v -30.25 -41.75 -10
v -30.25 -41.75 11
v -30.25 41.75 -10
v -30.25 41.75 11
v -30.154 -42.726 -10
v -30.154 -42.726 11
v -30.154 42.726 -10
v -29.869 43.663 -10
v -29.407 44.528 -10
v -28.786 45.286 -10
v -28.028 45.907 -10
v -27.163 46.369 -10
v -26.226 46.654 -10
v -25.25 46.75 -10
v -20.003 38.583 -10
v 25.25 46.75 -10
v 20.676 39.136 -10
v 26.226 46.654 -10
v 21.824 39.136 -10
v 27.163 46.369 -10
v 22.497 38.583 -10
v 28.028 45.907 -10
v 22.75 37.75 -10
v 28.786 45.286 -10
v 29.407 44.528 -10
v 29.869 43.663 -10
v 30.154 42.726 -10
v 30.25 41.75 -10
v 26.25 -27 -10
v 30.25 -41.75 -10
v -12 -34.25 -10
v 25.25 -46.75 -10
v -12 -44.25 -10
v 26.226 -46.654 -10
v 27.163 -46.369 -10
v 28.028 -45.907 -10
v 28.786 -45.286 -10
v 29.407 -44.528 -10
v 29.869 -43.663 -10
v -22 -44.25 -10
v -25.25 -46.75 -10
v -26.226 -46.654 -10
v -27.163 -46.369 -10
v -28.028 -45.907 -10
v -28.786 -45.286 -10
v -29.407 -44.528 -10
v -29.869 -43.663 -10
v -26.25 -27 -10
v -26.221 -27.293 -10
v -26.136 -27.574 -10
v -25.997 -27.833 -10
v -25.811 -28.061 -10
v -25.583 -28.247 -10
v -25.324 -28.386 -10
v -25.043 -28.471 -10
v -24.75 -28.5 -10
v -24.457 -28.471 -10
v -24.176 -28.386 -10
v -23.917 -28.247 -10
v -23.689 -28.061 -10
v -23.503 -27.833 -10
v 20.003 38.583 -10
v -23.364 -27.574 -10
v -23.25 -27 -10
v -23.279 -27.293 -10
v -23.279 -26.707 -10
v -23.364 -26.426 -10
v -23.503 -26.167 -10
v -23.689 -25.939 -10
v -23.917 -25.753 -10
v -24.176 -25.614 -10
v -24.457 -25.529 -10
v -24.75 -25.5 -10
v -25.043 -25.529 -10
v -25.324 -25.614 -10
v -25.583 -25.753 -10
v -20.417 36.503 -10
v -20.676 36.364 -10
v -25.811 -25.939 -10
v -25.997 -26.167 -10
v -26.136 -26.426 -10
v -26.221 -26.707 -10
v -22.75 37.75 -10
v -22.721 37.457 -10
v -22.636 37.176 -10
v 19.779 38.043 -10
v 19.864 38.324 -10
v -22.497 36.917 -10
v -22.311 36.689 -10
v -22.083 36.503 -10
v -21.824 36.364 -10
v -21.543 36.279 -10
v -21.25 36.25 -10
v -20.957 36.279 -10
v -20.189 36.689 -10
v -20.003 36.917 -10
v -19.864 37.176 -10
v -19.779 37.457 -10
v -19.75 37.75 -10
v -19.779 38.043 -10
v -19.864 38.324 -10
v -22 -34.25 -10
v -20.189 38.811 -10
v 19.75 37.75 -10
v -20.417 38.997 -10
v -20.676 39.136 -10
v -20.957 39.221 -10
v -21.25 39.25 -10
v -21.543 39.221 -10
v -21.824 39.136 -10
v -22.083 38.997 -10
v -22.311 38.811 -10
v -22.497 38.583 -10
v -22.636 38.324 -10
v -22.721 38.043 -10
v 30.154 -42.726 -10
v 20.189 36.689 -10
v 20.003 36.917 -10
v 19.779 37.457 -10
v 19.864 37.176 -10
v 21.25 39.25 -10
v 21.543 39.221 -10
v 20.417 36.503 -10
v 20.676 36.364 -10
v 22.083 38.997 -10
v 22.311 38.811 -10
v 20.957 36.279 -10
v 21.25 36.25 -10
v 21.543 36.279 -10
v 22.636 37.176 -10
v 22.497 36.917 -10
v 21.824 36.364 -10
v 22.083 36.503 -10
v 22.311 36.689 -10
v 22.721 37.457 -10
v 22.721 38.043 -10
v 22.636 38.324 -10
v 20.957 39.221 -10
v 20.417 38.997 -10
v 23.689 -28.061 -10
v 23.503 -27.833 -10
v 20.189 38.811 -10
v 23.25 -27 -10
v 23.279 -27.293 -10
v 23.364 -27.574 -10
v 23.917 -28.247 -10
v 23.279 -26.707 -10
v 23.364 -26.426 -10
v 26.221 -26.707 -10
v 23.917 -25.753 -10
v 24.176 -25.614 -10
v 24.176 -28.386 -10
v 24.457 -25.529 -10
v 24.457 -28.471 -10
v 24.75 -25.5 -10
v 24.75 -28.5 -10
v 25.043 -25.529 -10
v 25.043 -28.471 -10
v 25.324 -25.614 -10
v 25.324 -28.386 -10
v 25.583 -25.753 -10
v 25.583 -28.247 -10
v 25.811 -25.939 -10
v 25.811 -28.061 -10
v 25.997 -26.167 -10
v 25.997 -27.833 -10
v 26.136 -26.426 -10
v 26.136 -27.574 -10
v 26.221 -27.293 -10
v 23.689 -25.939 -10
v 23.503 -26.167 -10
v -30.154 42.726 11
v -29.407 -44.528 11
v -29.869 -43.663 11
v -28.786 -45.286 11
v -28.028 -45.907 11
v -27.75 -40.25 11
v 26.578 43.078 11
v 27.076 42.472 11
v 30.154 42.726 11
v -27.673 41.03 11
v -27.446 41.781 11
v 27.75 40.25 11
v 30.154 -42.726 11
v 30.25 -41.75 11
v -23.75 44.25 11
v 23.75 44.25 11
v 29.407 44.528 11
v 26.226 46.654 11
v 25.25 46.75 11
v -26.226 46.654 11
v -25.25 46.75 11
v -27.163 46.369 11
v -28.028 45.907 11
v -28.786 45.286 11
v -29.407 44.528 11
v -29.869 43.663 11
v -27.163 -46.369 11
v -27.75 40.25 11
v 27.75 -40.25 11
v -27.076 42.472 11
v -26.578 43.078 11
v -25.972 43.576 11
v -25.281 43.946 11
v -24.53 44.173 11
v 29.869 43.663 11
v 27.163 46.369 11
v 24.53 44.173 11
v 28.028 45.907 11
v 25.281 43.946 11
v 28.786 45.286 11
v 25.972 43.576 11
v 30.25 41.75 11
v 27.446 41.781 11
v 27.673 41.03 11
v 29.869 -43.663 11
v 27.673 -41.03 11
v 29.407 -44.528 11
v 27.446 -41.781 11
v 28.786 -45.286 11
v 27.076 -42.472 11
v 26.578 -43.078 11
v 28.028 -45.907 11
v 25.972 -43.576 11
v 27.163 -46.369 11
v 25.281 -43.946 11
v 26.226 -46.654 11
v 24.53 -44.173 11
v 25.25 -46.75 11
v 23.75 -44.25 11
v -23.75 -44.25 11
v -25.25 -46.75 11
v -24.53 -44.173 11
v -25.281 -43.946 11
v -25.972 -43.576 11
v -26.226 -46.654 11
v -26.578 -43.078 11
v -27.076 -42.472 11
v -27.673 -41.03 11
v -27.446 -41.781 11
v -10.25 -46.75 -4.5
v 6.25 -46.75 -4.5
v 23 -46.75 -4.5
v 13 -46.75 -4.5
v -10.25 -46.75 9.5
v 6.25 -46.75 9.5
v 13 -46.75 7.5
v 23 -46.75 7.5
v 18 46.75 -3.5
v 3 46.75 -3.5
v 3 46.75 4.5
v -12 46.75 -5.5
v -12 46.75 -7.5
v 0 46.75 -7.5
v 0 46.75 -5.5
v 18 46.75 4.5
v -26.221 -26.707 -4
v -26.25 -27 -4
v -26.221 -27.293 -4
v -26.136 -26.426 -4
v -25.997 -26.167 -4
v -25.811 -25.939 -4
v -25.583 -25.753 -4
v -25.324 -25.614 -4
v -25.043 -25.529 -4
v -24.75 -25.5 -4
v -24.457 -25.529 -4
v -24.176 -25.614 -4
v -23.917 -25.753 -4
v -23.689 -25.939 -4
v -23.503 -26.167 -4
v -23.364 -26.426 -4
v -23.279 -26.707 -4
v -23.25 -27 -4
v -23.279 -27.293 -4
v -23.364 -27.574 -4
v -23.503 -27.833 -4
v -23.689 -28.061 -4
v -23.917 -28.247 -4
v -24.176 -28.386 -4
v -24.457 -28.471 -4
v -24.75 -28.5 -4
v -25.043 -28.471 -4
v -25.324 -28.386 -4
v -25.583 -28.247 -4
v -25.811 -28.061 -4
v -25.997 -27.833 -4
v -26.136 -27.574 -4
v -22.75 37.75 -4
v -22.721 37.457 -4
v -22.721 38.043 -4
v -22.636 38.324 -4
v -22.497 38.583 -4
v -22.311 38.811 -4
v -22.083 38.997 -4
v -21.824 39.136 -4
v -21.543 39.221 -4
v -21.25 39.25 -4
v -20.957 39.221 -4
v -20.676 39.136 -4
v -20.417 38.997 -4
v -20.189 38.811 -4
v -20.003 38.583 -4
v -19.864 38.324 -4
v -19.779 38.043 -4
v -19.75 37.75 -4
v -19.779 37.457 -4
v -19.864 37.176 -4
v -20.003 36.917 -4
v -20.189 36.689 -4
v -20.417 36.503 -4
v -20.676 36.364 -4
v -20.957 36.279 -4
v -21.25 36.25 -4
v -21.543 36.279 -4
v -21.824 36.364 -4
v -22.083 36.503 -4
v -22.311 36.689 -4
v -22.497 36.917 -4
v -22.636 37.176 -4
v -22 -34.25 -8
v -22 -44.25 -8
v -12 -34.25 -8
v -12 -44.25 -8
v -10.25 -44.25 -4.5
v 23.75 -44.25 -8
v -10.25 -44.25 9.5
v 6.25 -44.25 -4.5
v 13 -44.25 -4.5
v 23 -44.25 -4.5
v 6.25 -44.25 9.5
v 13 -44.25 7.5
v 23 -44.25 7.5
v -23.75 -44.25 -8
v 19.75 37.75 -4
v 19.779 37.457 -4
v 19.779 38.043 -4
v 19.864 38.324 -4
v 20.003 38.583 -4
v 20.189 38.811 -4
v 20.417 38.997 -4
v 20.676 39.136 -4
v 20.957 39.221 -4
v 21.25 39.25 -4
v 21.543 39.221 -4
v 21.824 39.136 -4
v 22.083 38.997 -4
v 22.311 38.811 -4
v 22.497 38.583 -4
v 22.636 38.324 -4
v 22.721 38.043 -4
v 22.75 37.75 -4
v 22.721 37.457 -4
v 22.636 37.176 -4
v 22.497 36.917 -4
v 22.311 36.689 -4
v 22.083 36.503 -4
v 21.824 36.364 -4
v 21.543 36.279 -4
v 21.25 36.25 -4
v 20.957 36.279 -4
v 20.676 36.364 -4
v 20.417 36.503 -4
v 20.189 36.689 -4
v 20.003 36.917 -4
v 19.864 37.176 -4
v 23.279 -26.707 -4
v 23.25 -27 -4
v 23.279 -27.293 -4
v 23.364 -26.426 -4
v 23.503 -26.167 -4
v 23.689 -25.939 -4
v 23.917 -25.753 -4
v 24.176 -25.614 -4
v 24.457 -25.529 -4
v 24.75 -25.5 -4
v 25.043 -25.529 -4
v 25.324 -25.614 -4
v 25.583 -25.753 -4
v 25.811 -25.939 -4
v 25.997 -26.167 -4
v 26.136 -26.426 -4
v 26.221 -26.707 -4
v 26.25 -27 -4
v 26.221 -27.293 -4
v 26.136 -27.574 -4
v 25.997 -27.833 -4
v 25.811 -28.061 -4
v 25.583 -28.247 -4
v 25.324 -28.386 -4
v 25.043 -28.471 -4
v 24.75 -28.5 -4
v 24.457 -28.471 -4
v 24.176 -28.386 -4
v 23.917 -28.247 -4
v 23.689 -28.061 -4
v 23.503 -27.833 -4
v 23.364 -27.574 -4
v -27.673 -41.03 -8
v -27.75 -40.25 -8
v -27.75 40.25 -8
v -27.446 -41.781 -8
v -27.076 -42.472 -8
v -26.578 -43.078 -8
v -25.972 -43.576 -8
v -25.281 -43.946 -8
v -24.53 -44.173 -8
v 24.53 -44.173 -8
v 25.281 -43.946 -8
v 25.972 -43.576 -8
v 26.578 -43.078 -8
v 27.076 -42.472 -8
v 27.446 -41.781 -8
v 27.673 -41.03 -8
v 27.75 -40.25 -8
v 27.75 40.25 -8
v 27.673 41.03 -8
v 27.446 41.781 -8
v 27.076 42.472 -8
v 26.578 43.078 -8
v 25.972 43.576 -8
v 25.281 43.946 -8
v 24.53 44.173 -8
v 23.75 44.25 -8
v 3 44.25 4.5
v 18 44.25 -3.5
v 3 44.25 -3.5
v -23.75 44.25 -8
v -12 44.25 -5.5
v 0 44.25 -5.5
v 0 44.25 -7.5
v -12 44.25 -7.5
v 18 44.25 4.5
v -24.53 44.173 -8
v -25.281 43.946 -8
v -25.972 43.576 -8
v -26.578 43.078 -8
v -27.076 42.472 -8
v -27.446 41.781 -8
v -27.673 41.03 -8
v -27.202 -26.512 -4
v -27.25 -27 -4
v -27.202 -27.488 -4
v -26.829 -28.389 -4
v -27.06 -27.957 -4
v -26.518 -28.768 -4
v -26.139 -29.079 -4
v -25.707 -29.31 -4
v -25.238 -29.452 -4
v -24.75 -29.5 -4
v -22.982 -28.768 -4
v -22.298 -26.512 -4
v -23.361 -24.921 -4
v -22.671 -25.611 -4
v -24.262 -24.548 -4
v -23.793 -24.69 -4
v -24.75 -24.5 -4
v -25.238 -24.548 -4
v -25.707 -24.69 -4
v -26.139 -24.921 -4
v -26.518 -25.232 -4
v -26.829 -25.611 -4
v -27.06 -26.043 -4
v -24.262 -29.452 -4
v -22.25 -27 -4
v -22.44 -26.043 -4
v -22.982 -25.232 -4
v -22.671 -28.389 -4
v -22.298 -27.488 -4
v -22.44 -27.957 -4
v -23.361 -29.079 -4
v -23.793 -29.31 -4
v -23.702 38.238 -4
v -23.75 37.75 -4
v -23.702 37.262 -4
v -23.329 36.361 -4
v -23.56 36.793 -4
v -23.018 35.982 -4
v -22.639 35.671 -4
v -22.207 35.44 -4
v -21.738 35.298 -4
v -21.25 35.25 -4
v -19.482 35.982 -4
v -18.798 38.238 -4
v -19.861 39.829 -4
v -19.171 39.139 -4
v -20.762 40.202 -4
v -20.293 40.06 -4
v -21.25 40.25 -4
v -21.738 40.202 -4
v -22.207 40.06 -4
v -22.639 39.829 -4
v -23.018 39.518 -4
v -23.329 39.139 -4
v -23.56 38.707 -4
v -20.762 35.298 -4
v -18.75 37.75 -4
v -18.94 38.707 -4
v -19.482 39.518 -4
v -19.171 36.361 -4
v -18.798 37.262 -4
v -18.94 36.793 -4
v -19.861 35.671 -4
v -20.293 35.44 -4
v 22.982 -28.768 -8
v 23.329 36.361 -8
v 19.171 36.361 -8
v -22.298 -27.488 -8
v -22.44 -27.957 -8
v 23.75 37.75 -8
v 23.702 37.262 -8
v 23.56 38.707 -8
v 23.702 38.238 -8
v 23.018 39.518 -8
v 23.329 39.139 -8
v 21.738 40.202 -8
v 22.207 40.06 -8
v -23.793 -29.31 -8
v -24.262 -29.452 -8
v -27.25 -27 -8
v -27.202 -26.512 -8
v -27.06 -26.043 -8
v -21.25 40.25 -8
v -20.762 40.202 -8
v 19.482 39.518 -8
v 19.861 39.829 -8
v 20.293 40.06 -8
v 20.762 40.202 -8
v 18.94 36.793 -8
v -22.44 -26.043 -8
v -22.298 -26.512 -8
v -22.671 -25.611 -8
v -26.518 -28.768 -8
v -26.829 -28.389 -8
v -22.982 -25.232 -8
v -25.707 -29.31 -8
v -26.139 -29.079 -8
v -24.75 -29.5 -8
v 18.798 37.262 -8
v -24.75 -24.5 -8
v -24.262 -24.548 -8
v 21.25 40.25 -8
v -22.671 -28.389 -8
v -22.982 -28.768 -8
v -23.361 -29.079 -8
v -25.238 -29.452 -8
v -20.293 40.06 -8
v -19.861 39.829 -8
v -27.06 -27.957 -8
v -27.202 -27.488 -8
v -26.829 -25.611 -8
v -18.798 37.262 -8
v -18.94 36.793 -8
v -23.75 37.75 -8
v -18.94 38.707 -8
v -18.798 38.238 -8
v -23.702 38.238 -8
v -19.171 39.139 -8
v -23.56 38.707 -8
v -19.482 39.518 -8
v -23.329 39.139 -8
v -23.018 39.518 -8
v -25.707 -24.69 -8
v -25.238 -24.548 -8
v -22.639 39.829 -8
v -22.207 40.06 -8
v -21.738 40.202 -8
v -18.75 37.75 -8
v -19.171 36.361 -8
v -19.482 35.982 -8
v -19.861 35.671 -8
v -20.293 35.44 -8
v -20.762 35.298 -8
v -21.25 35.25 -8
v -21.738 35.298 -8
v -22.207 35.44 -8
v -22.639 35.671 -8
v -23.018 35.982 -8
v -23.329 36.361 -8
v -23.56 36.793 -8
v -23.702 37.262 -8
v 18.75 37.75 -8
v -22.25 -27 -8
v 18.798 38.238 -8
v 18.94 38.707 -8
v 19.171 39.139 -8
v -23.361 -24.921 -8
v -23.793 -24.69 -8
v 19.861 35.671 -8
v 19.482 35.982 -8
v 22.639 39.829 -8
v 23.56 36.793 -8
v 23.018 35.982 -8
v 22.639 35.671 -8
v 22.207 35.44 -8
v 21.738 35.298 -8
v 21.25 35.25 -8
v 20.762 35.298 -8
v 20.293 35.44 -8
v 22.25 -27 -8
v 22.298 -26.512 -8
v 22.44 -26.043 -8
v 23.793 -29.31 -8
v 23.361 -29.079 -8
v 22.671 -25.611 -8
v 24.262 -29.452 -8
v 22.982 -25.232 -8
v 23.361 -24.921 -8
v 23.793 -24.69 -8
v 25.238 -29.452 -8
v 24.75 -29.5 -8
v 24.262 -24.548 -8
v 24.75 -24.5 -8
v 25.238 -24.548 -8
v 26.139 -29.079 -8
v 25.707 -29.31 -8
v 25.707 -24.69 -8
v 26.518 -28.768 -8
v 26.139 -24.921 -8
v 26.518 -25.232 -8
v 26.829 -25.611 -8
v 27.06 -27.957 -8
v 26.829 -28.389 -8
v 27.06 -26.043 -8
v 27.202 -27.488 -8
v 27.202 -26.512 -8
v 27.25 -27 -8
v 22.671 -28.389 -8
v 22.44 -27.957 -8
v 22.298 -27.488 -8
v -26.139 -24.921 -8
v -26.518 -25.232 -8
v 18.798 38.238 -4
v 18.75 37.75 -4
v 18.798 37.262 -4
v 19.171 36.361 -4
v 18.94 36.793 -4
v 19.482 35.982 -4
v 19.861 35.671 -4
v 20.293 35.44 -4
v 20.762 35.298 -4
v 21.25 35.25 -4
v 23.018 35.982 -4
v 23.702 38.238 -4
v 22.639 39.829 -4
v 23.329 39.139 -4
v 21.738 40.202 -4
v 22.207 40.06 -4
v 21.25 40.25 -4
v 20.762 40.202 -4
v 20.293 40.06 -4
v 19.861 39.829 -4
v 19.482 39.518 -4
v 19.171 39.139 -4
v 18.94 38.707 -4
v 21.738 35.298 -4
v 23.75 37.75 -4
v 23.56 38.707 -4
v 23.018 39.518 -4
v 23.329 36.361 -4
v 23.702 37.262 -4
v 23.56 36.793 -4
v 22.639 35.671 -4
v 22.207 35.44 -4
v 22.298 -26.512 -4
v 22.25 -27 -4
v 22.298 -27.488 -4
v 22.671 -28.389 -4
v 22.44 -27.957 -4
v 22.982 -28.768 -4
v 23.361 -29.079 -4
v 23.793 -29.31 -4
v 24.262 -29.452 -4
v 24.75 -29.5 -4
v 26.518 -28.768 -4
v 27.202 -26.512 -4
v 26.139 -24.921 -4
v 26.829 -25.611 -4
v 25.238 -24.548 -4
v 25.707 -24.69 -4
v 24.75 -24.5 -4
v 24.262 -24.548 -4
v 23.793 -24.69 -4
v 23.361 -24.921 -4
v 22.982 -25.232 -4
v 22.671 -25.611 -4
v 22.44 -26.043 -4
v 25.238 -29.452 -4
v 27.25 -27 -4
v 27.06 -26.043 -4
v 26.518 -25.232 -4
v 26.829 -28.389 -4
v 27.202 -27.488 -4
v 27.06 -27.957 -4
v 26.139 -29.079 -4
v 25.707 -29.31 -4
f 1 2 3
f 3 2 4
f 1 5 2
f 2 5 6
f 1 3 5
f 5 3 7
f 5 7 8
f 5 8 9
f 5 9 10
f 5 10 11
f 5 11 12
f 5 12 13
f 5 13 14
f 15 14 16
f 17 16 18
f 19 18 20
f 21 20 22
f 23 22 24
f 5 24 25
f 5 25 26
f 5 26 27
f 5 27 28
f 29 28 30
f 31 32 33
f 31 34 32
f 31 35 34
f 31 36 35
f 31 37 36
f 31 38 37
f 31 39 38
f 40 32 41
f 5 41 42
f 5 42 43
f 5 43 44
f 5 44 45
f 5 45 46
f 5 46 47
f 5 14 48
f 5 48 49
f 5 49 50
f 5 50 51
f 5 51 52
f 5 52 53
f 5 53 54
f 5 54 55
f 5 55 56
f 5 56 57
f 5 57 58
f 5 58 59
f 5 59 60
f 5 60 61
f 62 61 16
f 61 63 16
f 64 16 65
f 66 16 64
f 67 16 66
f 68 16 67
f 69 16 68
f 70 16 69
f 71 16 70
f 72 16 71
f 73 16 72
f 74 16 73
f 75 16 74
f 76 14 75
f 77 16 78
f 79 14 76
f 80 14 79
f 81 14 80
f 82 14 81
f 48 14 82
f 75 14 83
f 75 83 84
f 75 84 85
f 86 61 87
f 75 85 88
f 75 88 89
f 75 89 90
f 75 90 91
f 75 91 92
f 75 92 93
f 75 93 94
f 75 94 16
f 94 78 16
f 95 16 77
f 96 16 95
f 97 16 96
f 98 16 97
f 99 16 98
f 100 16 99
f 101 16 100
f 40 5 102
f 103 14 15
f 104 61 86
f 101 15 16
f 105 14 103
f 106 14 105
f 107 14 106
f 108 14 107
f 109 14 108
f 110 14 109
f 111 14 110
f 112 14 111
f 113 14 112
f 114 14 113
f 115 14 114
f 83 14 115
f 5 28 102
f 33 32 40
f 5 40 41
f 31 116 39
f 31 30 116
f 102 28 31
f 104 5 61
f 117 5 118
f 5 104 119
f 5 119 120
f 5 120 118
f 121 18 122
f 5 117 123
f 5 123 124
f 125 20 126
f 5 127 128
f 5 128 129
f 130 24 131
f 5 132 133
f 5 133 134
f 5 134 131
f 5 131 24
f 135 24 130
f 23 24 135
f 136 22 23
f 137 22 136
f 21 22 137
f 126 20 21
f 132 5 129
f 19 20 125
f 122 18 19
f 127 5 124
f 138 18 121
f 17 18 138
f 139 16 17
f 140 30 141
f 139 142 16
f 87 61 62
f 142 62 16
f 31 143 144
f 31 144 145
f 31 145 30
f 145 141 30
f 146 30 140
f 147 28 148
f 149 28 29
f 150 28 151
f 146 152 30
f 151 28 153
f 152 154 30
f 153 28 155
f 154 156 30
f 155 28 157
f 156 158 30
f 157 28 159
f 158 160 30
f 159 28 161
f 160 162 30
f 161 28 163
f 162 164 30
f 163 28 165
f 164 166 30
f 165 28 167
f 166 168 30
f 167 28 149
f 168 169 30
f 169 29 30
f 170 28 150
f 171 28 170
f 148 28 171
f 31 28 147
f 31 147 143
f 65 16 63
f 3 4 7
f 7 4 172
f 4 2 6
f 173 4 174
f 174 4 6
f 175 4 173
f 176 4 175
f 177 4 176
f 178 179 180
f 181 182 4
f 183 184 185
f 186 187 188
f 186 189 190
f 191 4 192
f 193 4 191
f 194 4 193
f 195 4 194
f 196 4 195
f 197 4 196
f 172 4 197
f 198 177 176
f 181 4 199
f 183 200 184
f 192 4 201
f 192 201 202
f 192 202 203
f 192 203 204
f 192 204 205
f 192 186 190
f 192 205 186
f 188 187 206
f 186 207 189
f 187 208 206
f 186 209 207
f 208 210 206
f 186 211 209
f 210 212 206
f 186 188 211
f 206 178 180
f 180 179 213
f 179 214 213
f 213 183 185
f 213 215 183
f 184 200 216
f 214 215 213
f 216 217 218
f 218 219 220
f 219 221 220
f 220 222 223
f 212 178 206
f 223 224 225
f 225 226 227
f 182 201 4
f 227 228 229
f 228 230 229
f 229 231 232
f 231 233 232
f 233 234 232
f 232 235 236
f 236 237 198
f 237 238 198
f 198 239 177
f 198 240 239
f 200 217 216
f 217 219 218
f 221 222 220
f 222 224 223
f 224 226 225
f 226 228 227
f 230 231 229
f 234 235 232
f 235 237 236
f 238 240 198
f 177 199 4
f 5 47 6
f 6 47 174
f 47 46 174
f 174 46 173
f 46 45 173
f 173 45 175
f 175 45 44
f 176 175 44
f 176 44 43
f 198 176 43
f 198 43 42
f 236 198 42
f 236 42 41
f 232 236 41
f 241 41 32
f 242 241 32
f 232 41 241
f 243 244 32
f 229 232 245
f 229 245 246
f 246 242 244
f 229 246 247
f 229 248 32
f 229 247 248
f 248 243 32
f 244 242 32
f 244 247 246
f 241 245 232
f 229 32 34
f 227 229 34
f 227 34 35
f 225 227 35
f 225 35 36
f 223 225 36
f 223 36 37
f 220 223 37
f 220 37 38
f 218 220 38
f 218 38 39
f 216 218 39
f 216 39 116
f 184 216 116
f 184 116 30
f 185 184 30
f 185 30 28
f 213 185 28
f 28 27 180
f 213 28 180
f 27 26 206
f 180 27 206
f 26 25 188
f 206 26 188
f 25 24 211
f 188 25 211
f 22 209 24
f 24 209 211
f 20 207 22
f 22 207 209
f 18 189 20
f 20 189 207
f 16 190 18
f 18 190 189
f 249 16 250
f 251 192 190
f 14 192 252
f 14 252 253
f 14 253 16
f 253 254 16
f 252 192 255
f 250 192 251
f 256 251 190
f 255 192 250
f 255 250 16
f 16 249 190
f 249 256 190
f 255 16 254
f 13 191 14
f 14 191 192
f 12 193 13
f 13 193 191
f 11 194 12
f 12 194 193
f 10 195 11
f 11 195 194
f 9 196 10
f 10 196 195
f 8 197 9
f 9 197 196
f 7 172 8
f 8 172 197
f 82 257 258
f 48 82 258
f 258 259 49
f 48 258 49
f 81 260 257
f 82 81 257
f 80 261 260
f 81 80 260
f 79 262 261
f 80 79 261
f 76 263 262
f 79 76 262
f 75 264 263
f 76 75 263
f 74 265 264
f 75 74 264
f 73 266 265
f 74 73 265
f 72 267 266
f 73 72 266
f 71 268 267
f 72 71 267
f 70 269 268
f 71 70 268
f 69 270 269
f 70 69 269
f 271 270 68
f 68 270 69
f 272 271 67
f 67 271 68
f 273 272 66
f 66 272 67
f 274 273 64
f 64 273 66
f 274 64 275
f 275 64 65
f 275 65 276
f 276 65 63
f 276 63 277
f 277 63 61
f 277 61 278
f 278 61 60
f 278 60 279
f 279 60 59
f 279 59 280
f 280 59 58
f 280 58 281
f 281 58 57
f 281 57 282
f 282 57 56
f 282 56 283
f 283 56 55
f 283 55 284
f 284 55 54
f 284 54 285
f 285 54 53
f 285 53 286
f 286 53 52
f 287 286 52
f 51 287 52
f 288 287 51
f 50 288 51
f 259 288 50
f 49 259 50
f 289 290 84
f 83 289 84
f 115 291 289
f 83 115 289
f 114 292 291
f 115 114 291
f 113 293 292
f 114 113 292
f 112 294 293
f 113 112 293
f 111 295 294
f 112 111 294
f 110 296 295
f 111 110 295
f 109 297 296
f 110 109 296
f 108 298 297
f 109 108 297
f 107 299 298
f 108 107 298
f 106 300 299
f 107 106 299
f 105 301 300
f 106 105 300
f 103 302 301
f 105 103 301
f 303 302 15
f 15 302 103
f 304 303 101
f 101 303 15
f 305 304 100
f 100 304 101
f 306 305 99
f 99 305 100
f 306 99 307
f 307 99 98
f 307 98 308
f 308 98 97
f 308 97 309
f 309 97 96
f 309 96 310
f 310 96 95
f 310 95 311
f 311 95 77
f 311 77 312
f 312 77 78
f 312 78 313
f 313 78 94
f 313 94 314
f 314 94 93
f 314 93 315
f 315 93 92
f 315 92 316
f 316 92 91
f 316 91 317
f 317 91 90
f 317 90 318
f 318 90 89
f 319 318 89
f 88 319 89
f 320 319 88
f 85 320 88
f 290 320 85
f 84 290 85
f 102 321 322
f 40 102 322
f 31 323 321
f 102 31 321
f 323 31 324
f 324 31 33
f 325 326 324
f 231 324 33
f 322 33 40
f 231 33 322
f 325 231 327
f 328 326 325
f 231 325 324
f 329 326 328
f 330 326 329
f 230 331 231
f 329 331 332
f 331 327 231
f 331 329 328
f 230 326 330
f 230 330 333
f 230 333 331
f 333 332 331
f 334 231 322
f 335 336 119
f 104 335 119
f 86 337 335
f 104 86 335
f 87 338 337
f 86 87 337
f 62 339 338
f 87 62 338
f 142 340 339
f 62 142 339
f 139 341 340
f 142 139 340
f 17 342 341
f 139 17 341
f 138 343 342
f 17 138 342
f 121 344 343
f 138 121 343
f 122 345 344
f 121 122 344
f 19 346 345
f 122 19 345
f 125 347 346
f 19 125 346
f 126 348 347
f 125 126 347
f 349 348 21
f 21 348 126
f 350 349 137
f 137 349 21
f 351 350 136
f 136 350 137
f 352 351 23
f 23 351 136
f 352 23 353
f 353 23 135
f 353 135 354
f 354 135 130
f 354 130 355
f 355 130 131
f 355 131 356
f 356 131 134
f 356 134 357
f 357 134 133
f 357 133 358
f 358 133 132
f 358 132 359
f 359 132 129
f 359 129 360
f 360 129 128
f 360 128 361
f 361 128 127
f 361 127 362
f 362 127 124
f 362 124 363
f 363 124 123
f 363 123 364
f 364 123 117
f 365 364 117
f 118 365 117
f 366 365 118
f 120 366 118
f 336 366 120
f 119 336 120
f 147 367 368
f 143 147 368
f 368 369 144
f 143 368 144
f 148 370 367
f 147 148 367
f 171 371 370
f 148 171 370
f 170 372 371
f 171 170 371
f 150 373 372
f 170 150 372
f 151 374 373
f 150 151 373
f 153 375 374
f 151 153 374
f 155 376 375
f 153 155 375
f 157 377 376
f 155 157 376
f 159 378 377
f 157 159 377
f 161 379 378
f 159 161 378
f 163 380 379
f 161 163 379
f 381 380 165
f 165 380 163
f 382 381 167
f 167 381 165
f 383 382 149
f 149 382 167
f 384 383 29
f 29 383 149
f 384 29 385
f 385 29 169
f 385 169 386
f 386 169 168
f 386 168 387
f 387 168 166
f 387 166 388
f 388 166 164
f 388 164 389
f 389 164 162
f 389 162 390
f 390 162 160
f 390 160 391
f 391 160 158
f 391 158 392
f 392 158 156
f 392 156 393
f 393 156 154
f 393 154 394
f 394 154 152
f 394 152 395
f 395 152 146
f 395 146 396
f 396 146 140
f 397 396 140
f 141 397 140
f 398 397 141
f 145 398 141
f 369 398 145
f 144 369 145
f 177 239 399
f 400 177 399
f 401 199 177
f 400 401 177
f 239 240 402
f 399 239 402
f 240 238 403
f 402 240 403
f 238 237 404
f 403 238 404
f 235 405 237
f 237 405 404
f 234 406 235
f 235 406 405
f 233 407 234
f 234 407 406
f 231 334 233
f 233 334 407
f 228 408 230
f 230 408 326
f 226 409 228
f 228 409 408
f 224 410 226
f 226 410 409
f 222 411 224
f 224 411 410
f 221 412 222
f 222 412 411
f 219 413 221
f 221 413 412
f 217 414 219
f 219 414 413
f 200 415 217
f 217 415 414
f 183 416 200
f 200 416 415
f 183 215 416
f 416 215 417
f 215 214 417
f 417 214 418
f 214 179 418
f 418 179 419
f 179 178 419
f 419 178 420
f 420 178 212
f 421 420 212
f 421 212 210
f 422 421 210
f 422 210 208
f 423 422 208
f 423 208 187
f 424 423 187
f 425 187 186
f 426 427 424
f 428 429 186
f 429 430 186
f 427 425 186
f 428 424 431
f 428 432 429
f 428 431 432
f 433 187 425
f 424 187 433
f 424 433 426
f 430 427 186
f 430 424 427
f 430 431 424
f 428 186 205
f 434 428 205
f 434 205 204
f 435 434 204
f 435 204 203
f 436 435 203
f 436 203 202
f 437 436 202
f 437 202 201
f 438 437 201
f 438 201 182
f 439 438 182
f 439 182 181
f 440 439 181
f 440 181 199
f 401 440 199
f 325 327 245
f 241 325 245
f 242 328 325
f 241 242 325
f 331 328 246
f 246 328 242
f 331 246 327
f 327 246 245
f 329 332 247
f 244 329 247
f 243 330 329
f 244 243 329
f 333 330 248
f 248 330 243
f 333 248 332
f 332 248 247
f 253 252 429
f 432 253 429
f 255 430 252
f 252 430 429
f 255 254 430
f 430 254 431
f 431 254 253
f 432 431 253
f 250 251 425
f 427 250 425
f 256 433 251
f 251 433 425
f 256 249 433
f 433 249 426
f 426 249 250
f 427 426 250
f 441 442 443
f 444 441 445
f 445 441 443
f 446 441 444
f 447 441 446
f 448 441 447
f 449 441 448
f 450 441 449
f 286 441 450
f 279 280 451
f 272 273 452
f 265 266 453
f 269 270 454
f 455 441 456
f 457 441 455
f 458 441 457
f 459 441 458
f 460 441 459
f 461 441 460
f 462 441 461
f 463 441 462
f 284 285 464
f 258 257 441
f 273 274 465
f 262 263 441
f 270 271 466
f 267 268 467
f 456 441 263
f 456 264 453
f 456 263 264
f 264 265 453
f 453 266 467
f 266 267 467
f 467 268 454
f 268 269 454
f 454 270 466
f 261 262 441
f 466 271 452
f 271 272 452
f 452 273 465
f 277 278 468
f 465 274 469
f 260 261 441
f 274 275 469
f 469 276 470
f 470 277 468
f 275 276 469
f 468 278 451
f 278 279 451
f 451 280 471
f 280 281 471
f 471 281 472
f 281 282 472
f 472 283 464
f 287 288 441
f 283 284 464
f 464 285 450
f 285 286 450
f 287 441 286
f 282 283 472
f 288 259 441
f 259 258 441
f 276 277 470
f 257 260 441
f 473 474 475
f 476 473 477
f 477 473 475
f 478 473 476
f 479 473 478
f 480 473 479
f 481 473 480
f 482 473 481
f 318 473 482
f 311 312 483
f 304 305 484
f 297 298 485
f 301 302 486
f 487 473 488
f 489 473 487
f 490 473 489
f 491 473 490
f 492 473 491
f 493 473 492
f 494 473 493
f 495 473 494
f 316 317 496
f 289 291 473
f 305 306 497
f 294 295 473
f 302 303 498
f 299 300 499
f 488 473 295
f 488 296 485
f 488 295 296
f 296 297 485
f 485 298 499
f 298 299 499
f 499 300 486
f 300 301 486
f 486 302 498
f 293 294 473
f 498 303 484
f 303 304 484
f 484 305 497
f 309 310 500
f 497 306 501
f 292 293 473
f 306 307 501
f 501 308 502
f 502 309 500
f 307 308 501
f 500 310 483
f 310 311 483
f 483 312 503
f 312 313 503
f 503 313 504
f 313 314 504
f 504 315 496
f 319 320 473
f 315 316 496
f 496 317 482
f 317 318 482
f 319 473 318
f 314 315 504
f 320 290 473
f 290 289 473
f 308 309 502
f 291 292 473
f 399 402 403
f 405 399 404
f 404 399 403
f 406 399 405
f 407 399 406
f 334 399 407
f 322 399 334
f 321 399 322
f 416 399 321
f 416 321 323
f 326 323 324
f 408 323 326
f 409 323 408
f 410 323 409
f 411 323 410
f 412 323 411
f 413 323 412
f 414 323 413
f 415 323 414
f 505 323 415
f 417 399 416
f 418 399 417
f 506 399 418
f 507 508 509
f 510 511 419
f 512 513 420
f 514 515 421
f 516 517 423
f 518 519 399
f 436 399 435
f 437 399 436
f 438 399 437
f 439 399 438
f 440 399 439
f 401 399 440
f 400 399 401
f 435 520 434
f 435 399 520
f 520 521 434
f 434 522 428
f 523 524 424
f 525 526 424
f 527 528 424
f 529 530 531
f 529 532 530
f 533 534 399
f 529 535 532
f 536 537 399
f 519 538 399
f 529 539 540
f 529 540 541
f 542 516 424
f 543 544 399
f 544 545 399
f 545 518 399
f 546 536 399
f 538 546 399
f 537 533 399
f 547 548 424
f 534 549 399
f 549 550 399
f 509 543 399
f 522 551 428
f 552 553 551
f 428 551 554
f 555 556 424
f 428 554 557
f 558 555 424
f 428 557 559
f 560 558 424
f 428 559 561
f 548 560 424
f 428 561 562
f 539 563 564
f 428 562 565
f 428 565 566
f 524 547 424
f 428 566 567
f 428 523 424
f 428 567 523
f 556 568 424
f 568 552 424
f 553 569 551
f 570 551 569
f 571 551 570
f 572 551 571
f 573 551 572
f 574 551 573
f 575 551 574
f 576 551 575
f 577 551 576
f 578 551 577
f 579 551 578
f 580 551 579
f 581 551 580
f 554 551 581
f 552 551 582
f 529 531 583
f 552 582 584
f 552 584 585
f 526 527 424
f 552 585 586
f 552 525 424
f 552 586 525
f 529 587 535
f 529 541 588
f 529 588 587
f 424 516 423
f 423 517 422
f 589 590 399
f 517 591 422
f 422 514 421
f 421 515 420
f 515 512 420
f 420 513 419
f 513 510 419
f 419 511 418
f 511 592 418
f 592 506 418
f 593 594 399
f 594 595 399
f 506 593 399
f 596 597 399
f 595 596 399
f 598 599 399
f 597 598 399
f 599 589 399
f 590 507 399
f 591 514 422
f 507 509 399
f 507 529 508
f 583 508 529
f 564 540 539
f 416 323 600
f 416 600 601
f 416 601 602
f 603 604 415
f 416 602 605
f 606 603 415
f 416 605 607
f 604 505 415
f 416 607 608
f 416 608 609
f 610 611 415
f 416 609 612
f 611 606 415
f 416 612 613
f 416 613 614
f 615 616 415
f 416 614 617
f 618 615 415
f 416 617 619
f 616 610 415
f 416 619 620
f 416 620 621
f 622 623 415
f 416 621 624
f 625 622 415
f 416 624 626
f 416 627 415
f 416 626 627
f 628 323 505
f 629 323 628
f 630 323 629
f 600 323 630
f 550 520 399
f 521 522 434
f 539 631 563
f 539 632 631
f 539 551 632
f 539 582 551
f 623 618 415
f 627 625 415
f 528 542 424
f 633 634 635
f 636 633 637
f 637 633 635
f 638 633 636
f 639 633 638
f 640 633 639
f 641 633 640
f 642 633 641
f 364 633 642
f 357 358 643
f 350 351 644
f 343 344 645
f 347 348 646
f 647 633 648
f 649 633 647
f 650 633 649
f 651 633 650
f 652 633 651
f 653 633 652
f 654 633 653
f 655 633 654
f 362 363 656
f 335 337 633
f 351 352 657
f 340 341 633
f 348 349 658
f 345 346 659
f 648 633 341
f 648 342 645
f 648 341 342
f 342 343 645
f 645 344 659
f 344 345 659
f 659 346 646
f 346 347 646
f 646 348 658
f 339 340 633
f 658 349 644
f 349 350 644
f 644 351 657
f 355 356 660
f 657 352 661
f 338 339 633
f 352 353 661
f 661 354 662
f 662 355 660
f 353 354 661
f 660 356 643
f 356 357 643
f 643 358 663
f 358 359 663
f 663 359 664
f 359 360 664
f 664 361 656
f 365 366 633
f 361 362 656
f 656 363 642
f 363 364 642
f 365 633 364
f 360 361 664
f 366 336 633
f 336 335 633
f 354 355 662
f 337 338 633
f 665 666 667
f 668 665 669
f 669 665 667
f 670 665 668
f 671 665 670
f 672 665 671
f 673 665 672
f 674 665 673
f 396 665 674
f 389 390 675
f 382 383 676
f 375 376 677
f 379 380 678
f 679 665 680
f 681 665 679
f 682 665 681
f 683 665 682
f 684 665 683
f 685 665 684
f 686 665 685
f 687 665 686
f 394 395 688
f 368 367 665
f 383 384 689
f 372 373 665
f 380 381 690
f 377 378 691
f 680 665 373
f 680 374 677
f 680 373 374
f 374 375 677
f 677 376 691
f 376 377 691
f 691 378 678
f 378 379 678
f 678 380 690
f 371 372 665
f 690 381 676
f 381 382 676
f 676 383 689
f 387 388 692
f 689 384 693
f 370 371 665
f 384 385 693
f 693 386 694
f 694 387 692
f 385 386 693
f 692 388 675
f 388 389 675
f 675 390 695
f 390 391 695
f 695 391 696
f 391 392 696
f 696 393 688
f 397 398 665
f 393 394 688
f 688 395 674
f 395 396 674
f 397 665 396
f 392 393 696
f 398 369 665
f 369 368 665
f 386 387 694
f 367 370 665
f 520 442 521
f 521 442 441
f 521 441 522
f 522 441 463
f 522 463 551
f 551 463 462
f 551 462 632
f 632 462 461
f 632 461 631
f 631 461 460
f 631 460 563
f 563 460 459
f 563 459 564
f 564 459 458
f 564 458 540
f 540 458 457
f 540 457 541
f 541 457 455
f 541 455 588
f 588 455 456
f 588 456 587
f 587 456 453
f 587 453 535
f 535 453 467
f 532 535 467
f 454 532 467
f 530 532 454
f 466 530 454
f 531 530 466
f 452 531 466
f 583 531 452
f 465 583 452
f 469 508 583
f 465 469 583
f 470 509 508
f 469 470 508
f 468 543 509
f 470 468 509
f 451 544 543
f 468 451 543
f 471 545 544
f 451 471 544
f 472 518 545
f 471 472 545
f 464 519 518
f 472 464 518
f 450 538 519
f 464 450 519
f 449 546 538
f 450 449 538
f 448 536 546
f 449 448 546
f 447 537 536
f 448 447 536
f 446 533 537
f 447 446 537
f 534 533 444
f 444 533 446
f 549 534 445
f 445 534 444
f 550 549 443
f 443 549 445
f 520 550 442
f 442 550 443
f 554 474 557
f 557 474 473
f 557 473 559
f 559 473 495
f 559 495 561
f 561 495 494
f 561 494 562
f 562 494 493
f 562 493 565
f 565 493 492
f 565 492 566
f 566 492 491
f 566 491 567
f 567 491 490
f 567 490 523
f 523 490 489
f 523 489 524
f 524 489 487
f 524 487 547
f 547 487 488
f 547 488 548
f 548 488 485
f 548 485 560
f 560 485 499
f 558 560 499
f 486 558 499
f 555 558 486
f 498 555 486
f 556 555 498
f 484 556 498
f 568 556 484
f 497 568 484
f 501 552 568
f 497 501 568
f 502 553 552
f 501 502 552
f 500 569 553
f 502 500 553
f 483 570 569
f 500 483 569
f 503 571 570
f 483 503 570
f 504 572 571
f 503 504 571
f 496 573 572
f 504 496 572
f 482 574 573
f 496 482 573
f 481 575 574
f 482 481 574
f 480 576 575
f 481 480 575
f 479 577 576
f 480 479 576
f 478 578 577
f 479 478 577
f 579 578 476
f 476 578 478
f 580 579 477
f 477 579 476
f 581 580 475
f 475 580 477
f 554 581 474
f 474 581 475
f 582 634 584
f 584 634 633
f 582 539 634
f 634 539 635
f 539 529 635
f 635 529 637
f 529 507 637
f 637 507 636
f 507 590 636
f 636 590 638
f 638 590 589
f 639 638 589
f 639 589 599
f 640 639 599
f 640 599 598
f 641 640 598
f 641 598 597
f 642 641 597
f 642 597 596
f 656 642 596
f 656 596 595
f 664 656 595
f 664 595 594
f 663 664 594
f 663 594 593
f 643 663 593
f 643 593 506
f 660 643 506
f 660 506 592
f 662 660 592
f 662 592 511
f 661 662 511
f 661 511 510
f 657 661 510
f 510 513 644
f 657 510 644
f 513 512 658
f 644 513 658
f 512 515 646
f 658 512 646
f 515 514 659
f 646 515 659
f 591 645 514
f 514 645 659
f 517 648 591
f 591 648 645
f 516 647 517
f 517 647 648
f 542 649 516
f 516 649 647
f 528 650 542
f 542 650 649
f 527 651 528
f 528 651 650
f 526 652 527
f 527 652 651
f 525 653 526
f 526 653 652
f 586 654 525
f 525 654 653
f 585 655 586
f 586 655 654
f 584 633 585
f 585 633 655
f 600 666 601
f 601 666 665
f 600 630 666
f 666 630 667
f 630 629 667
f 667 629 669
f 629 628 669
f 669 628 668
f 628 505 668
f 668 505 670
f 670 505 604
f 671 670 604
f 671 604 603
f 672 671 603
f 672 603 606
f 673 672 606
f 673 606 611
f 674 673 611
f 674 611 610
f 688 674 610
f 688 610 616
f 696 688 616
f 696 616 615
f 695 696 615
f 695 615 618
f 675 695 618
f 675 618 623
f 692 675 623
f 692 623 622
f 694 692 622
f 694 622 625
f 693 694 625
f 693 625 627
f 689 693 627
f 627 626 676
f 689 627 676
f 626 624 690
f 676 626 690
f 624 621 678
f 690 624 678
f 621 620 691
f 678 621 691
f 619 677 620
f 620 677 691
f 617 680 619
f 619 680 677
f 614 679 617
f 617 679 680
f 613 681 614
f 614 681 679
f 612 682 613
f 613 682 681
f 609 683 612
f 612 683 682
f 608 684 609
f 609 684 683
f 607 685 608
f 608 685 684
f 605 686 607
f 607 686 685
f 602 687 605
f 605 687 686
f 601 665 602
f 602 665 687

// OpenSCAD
wall_thickness=5.0;
base_thickness=2.0;
bb_depth=20;
bb_width=55.5;
bb_height=88.5;
bb_curve_corner=10;

peg_pow_front=17.25;
peg_pow_side=3.0;

peg_sd_front=6.5;
peg_sd_side=6.5;

module RoundedBB(extra_width,extra_height,depth,curve=bb_curve_corner) {
	minkowski() {
		cube([bb_width-curve+extra_width,bb_height-curve+extra_height,depth],center=true);
		cylinder(r=curve/2, height=depth, $fn=32);
	}
}

module BeagleBox(curve=bb_curve_corner) {
	difference() {
		RoundedBB(wall_thickness, wall_thickness, bb_depth, curve);
		translate([0,0,base_thickness])
			RoundedBB(0, 0, bb_depth, curve-2);
	}	
}

difference() {
	union() {
		difference() {
			BeagleBox();

			translate([0,0,-bb_depth/2+9]) {
				// -- Bottom End --

				// Power connector
				translate([18,-bb_height/2,2.5])
					cube([10,10,12],center=true);
				// Ethernet port
				translate([-2,-bb_height/2,3.5])
					cube([16.5,10,14],center=true);

				// Mini USB (Underneath)
				// translate([-23,-bb_height/2-5,-16])     // protruding
				// translate([-23,-bb_height/2,-9+0.334])  // thin layer underneath
				//	cube([10,12,base_thickness-0.3333]);
				translate([-22,-bb_height/2,-12])
					cube([10,10,10]);

				// -- Top End --

				// SD Card slot
				translate([-6,bb_height/2,-5.5])
					cube([12,10,2], center=true);
				// USB port
				translate([10.5,bb_height/2,1.5])
					cube([15,10,8],center=true);
			}
		}

		// Pegs
		translate([0,0,-bb_depth/2+9]) {
			// Pegs on "power" end
			translate([-bb_width/2+peg_pow_side,-bb_height/2+peg_pow_front,-5])
				cylinder(r=2.5,h=4,$fn=32,center=true);
			translate([bb_width/2-peg_pow_side,-bb_height/2+peg_pow_front,-5])
				cylinder(r=2.5,h=4,$fn=32,center=true);

			// Pegs on "sd card" end
			translate([-bb_width/2+peg_sd_side,bb_height/2-peg_sd_front,-5])
				cylinder(r=2.5,h=4,$fn=32,center=true);
			translate([bb_width/2-peg_sd_side,bb_height/2-peg_sd_front,-5])
				cylinder(r=2.5,h=4,$fn=32,center=true);
		}
	}

	// Drill holes through pegs and floor
	translate([0,0,-bb_depth/2+9]) {
		// Pegs on "power" end
		translate([-bb_width/2+peg_pow_side,-bb_height/2+peg_pow_front,-5])
			cylinder(r=1.5,h=10,$fn=32,center=true);
		translate([bb_width/2-peg_pow_side,-bb_height/2+peg_pow_front,-5])
			cylinder(r=1.5,h=10,$fn=32,center=true);

		// Pegs on "sd card" end
		translate([-bb_width/2+peg_sd_side,bb_height/2-peg_sd_front,-5])
			cylinder(r=1.5,h=10,$fn=32,center=true);
		translate([bb_width/2-peg_sd_side,bb_height/2-peg_sd_front,-5])
			cylinder(r=1.5,h=10,$fn=32,center=true);
	}
}
